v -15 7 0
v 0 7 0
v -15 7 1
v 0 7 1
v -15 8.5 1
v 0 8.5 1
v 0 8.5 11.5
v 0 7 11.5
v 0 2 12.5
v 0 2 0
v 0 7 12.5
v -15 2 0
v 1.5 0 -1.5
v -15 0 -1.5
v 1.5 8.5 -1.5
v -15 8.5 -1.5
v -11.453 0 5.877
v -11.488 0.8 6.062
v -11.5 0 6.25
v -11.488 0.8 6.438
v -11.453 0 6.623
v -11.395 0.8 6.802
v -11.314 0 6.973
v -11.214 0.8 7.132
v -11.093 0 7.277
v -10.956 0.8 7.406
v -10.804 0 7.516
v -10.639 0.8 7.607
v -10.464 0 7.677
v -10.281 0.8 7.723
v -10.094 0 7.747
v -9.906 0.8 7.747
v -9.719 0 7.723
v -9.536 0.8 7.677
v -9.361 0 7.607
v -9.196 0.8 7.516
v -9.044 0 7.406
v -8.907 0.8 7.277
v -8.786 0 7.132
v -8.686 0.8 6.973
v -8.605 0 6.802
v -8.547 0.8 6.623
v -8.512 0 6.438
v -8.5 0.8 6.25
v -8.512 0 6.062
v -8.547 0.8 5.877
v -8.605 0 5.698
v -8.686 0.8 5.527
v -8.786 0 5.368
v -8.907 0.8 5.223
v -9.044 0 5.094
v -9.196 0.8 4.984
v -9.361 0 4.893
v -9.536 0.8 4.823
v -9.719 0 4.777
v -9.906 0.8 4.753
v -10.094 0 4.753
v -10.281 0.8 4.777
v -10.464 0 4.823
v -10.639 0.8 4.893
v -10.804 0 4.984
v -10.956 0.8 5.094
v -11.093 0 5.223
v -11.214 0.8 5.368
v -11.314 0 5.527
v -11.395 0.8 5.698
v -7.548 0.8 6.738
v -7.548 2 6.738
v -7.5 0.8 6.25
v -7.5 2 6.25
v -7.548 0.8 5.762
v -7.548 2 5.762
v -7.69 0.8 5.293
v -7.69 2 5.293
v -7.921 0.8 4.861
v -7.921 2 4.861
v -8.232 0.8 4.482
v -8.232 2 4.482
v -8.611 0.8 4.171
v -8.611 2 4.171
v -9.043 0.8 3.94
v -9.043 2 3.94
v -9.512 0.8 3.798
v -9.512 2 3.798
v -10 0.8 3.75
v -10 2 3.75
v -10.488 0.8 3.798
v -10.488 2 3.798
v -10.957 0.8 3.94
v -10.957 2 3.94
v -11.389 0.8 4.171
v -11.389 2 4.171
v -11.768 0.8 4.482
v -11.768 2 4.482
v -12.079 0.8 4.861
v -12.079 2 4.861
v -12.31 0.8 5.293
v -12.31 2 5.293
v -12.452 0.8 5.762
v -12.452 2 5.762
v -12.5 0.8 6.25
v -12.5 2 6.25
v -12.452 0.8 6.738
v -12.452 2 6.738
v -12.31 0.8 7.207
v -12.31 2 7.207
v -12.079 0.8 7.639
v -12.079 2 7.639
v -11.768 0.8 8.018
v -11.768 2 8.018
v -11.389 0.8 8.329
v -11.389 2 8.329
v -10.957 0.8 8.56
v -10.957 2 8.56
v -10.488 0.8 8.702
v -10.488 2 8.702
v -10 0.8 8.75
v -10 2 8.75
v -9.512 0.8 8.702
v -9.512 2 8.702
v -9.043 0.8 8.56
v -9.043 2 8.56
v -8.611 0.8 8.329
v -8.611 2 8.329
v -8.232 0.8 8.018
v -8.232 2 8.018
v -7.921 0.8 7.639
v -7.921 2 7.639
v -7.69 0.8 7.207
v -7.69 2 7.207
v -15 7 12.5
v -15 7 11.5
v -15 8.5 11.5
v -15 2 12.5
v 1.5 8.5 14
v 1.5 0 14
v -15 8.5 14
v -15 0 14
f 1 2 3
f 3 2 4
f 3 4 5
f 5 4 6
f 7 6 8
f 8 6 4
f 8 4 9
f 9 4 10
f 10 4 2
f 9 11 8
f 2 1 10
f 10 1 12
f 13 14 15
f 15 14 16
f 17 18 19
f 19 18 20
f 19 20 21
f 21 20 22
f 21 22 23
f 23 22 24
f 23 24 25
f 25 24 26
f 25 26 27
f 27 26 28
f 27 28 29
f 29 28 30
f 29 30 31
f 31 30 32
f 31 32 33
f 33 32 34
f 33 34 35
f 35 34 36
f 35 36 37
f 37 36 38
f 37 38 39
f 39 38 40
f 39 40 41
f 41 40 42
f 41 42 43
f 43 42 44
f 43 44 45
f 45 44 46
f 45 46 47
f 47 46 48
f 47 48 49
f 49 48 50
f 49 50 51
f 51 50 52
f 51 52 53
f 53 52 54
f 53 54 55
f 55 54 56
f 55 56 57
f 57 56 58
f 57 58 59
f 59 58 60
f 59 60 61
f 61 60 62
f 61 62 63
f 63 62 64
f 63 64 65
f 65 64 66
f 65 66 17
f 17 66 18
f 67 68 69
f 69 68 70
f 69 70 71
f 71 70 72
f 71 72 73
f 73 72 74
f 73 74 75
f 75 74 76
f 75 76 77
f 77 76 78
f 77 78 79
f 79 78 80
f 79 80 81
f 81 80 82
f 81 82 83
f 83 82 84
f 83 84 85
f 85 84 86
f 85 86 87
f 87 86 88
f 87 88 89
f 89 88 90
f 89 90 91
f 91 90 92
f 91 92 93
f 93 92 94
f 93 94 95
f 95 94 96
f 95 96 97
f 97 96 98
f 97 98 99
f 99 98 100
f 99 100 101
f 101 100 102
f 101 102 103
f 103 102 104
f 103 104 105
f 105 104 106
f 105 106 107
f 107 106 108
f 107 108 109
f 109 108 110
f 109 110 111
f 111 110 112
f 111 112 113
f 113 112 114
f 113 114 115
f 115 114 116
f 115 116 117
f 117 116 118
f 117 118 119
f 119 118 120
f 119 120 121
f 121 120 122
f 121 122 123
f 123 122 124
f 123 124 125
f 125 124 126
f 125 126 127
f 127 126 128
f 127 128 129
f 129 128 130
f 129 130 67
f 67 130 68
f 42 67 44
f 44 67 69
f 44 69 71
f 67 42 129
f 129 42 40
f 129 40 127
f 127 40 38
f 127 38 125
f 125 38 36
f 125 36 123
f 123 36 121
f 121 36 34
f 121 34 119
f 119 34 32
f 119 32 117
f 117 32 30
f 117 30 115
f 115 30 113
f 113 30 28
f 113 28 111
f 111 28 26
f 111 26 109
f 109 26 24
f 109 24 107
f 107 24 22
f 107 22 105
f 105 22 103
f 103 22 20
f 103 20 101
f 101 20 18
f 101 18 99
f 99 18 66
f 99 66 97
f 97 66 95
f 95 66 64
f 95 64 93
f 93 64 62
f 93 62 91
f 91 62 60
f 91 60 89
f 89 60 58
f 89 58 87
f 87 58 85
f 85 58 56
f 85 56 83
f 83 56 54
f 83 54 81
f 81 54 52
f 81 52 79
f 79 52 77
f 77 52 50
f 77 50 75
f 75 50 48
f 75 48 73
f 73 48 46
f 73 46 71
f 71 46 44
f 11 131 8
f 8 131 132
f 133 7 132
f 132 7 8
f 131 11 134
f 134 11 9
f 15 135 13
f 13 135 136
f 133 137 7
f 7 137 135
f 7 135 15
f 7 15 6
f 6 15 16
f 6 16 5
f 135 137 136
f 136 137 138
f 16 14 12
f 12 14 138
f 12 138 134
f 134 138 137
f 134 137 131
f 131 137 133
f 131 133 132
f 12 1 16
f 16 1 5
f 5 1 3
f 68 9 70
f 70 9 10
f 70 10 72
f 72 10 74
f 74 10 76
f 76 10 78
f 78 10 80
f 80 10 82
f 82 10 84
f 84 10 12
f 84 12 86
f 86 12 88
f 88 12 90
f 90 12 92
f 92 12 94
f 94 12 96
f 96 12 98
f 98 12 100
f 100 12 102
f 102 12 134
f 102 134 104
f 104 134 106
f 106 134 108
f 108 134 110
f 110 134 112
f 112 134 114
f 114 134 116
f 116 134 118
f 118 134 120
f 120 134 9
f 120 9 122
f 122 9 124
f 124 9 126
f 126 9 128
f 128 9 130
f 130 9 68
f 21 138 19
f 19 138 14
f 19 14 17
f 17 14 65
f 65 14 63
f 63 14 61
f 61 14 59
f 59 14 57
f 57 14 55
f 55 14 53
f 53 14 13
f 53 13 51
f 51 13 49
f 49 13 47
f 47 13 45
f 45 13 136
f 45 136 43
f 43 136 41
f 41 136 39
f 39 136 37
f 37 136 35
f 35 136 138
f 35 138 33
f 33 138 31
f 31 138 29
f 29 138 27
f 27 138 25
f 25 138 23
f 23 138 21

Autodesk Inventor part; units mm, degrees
ref_plane "YZ Plane" through (0, 0, 0) normal (1, 0, 0) x (0, 1, 0)
ref_plane "XZ Plane" through (0, 0, 0) normal (0, 1, 0) x (-1, 0, 0)
ref_plane "XY Plane" through (0, 0, 0) normal (0, 0, 1) x (1, 0, 0)
sketch "Sketch1" plane through (0, 0, 0) normal (0, 1, 0) x (-1, 0, 0)
  line L0 (0, 0) -> (15, 0)
  line L1 (15, 0) -> (15, 12.5)
  line L2 (15, 12.5) -> (0, 12.5)
  line L3 (0, 12.5) -> (0, 0)
  dimension "d0" = 15
  dimension "d1" = 12.5
extrude "Extrusion1" add sketch "Sketch1" along normal blind 2
sketch "Sketch2" plane through (-15, 0, 12.5) normal (0, 0, 1) x (1, 0, 0)
  line L0 (0, 0) -> (15, 0)
  line L1 (15, 0) -> (15, 8.5)
  line L2 (15, 8.5) -> (0, 8.5)
  line L3 (0, 8.5) -> (0, 0)
  point P0 (15, 0)
  dimension "d4" = 8.5
  dimension "d5" = 15
extrude "Extrusion2" add sketch "Sketch2" along normal blind 1.5
sketch "Sketch3" plane through (0, 0, 0) normal (1, 0, 0) x (0, 0, -1)
  line L0 (-14, 8.5) -> (-14, 0) projected
  line L1 (-14, 8.5) -> (0, 8.5)
  line L2 (0, 8.5) -> (0, 0)
  line L3 (0, 0) -> (-14, 0)
  line L4 (-14, 0) -> (-14, 8.5)
  point P0 (-14, 0)
extrude "Extrusion3" add sketch "Sketch3" along normal blind 1.5
sketch "Sketch4" plane through (-15, 0, 12.5) normal (0, 0, -1) x (-1, 0, 0)
  line L0 (-15, 8.5) -> (0, 8.5) projected
  line L1 (-15, 2) -> (-15, 8.5) projected
  line L2 (0, 8.5) -> (-15, 8.5)
  line L3 (-15, 8.5) -> (-15, 7)
  line L4 (-15, 7) -> (0, 7)
  line L5 (0, 7) -> (0, 8.5)
  point P0 (-15, 0)
  dimension "d11" = 1.5
extrude "Extrusion4" add sketch "Sketch4" along normal blind 1
sketch "Sketch5" plane through (0, 2, 0) normal (0, 1, 0) x (1, 0, 0)
  circle A0 centre (-10, -6.25) radius 2.5
  line L0 (-15, 0) -> (-15, -12.5) projected
  line L1 (-15, -14) -> (1.5, -14) projected
  point P0 (0, 0)
  dimension "d14" = 5
  dimension "d15" = 5
  dimension "d28" = 7.75
extrude "Extrusion5" cut sketch "Sketch5" against normal blind 1.2
sketch "Sketch6" plane through (-10, 0.8, 6.25) normal (0, 1, 0) x (1, 0, 0)
  circle A0 centre (0, 0) radius 2.5 projected
  circle A1 centre (0, 0) radius 1.5
  point P0 (10, 6.25)
  dimension "d29" = 3
extrude "Extrusion6" cut sketch "Sketch6" against normal blind 1.2 contours A1
sketch "Sketch7" plane through (-15, 0, 0) normal (0, 0, -1) x (-1, 0, 0)
  line L0 (-16.5, 0) -> (0, 0)
  line L1 (0, 0) -> (0, 2)
  line L2 (0, 2) -> (-16.5, 2)
  line L3 (-16.5, 2) -> (-16.5, 0)
  line L4 (-15, 8.5) -> (-16.5, 8.5) projected
  line L5 (-16.5, 2) -> (-15, 2)
  line L6 (-15, 2) -> (-15, 8.5)
  line L7 (-15, 8.5) -> (-16.5, 8.5)
  line L8 (-16.5, 8.5) -> (-16.5, 2)
  line L9 (0, 8.5) -> (-15, 8.5) projected
  line L10 (-15, 2) -> (0, 2)
  line L11 (0, 2) -> (0, 8.5)
  line L12 (0, 8.5) -> (-15, 8.5)
  line L13 (-15, 8.5) -> (-15, 2)
  point P0 (-15, 0)
extrude "Extrusion7" add sketch "Sketch7" along normal blind 1.5
sketch "Sketch8" plane through (-15, 0, 0) normal (0, 0, 1) x (1, 0, 0)
  line L0 (0, 8.5) -> (15, 8.5) projected
  line L1 (0, 8.5) -> (15, 8.5)
  line L2 (15, 8.5) -> (15, 7)
  line L3 (15, 7) -> (0, 7)
  line L4 (0, 7) -> (0, 8.5)
  point P0 (15, 0)
  dimension "d25" = 1.5
extrude "Extrusion8" add sketch "Sketch8" along normal blind 1
properties part number "LuftSensorHållare"
